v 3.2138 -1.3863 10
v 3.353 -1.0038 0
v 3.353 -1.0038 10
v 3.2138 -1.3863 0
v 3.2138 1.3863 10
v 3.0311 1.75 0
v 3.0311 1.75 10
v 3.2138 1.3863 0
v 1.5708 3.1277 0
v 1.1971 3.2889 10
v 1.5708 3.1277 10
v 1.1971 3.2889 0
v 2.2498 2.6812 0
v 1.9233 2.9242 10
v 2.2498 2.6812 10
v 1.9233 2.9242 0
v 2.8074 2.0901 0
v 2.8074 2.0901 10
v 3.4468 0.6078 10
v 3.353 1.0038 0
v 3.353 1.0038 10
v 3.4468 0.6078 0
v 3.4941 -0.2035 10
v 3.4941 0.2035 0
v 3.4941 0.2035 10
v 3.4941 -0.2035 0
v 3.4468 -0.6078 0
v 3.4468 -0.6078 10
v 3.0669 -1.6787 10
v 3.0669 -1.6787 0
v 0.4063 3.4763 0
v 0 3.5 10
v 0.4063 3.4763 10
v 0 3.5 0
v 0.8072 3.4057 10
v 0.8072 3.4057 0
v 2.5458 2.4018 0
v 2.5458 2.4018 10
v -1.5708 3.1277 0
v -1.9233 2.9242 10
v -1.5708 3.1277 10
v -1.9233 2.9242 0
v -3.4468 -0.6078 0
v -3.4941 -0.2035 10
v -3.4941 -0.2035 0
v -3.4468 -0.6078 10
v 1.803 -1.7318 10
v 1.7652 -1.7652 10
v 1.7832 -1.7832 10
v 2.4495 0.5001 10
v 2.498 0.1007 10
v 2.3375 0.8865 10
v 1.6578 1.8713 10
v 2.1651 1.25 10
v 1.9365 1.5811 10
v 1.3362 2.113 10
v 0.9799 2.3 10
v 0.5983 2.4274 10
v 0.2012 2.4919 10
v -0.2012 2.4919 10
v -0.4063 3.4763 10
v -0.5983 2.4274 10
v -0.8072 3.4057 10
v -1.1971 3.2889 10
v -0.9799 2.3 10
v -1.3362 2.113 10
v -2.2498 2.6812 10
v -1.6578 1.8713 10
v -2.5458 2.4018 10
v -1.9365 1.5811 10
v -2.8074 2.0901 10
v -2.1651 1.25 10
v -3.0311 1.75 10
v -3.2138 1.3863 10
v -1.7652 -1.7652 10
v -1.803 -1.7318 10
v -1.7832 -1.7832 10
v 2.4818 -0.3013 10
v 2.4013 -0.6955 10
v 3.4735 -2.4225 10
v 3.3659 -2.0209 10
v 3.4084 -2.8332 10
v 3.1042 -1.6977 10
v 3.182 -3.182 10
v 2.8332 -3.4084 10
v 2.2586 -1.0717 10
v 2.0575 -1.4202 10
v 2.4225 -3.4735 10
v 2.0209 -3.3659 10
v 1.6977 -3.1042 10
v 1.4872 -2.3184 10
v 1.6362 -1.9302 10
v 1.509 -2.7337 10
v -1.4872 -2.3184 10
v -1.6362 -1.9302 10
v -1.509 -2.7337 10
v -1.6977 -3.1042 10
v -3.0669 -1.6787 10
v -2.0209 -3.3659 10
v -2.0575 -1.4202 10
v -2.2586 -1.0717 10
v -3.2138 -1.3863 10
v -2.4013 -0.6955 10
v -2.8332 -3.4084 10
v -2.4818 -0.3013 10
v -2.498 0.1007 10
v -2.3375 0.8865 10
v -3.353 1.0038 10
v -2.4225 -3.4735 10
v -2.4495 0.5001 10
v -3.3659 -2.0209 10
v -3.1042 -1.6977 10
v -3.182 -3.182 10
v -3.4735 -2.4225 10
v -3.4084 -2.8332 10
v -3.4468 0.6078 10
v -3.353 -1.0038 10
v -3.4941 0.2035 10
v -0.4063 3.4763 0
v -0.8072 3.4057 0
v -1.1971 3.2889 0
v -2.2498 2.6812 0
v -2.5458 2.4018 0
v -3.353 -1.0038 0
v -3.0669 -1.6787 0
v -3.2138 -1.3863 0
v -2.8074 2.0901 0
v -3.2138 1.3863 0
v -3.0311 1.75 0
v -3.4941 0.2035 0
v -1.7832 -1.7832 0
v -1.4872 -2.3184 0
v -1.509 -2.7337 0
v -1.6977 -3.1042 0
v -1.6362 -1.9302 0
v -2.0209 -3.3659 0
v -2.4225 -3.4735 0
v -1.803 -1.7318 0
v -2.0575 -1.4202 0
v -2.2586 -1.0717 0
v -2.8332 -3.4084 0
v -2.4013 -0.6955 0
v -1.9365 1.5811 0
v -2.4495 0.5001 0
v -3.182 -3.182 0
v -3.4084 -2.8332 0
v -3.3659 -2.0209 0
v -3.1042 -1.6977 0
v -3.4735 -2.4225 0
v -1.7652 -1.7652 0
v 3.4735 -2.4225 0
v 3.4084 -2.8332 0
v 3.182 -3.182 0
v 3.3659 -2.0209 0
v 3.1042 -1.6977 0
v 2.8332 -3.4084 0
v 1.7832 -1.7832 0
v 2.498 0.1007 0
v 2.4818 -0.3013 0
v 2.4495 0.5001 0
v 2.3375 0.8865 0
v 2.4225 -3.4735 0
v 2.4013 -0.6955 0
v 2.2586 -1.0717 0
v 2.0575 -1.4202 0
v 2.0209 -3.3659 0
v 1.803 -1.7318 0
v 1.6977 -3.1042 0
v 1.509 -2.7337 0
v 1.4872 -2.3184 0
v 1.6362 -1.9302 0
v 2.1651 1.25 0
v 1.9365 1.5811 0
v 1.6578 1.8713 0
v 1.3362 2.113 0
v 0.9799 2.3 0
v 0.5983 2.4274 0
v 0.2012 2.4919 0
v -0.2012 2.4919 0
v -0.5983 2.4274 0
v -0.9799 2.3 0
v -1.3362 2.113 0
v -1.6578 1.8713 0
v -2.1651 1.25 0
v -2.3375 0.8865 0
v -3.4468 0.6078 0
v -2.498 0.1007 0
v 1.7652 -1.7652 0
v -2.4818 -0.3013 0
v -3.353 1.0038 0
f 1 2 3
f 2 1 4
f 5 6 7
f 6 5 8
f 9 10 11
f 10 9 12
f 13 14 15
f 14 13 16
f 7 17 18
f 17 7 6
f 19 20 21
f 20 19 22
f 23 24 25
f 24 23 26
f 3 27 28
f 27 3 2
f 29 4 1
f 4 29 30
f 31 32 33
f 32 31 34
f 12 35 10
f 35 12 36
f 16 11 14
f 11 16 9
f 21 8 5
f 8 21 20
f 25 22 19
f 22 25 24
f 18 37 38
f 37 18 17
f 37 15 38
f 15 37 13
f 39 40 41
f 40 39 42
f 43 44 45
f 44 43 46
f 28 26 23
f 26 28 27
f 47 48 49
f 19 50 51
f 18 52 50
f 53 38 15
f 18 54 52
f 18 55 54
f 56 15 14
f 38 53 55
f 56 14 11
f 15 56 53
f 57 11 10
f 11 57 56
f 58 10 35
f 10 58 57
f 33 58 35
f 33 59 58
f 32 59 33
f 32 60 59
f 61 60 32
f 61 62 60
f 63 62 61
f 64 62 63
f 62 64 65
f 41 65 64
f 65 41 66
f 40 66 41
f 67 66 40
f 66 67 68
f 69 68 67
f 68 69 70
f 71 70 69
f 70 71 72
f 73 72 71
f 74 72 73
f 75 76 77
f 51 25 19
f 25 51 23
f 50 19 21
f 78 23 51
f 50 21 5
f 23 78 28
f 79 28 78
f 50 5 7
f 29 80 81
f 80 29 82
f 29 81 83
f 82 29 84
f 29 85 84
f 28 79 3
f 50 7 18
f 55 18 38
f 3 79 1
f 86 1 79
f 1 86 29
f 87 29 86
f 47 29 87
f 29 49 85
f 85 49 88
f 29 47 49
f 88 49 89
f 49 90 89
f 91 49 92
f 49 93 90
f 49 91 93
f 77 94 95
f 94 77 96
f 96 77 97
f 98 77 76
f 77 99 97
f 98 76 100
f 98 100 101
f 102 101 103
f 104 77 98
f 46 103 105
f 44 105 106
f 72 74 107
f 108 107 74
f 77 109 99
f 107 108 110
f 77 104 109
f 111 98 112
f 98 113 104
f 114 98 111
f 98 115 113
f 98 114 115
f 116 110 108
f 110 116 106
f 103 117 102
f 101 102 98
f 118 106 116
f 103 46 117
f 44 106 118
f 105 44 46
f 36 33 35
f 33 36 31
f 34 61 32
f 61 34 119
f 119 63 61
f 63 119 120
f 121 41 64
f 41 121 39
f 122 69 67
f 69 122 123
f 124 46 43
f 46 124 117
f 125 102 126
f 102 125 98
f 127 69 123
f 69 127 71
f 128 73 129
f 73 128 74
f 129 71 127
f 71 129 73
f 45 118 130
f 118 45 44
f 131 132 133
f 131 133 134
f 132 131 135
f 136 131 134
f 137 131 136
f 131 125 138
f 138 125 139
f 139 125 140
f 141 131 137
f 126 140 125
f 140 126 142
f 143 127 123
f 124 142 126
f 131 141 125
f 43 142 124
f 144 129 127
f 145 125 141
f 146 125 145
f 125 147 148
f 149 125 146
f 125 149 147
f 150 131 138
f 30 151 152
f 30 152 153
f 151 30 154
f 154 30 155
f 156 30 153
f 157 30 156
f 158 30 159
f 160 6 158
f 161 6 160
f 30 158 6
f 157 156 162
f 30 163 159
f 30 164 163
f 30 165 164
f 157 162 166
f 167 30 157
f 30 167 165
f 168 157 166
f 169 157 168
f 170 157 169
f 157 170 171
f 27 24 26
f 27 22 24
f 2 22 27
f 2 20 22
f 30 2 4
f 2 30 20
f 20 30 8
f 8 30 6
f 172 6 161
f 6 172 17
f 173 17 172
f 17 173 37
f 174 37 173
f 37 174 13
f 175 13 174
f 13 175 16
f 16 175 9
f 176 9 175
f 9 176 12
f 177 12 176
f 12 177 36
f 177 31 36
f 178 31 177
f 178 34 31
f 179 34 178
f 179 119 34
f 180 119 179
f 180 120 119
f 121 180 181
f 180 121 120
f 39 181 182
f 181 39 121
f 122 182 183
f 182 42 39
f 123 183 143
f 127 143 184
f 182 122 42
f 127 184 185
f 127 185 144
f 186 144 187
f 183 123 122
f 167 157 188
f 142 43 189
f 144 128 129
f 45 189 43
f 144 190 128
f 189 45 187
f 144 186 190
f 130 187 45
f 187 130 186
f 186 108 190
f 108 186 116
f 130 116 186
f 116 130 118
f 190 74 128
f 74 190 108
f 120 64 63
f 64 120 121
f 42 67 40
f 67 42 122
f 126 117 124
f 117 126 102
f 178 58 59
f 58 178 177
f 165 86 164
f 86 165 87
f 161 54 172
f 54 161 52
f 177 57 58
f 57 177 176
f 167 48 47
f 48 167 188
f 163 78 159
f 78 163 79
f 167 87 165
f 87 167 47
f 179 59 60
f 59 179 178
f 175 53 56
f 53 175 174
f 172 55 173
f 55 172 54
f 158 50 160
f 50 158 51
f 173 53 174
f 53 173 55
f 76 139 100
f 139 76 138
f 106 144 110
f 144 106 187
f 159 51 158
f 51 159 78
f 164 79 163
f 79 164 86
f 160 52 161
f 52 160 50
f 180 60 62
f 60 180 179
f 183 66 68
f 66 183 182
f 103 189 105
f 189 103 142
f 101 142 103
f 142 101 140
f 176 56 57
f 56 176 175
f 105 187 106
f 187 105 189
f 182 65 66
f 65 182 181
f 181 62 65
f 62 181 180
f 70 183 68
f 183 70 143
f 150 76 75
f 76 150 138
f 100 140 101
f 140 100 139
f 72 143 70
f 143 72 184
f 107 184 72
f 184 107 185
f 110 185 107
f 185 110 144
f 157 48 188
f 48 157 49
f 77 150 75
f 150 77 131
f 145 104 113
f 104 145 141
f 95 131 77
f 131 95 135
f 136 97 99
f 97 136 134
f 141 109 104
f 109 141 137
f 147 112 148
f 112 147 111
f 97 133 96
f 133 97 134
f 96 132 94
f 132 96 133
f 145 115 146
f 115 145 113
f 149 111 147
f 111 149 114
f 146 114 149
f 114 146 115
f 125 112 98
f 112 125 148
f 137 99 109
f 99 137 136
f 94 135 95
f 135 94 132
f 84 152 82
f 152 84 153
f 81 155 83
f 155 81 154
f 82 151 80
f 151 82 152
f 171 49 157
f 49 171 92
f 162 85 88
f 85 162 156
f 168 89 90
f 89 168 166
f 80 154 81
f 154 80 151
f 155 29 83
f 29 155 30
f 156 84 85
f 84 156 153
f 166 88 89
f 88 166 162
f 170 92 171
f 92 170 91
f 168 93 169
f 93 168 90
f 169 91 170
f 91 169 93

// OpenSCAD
clipInnerRad = 2.5;
clipThikness = 1;
clipHeight = 10;

supportWidth = 0;
supportHeight = 0;

rotate([0,0,-90]){
	clip(ir=clipInnerRad-supportWidth/2,t=clipThikness+supportWidth,h=supportHeight);
	translate([0,0,supportHeight])clip();
}

module clip(ir=clipInnerRad,t=clipThikness,h=clipHeight){

	difference(){
		cylinder(r=ir+t,h=h,$fn=PI*(ir+t)*5);
		translate([0,0,-.5])
		cylinder(r=ir,h=h+1,$fn=PI*ir*5);

		rotate([0,0,-45])
		translate([0,0,-.5])
		cube([10e10,10e10,h+1]);
	}

	for (r=[-45,45]) rotate([0,0,r])
	translate([ir+t,0,0])
	cylinder(r=t,h=h,$fn=PI*t*5);

}
